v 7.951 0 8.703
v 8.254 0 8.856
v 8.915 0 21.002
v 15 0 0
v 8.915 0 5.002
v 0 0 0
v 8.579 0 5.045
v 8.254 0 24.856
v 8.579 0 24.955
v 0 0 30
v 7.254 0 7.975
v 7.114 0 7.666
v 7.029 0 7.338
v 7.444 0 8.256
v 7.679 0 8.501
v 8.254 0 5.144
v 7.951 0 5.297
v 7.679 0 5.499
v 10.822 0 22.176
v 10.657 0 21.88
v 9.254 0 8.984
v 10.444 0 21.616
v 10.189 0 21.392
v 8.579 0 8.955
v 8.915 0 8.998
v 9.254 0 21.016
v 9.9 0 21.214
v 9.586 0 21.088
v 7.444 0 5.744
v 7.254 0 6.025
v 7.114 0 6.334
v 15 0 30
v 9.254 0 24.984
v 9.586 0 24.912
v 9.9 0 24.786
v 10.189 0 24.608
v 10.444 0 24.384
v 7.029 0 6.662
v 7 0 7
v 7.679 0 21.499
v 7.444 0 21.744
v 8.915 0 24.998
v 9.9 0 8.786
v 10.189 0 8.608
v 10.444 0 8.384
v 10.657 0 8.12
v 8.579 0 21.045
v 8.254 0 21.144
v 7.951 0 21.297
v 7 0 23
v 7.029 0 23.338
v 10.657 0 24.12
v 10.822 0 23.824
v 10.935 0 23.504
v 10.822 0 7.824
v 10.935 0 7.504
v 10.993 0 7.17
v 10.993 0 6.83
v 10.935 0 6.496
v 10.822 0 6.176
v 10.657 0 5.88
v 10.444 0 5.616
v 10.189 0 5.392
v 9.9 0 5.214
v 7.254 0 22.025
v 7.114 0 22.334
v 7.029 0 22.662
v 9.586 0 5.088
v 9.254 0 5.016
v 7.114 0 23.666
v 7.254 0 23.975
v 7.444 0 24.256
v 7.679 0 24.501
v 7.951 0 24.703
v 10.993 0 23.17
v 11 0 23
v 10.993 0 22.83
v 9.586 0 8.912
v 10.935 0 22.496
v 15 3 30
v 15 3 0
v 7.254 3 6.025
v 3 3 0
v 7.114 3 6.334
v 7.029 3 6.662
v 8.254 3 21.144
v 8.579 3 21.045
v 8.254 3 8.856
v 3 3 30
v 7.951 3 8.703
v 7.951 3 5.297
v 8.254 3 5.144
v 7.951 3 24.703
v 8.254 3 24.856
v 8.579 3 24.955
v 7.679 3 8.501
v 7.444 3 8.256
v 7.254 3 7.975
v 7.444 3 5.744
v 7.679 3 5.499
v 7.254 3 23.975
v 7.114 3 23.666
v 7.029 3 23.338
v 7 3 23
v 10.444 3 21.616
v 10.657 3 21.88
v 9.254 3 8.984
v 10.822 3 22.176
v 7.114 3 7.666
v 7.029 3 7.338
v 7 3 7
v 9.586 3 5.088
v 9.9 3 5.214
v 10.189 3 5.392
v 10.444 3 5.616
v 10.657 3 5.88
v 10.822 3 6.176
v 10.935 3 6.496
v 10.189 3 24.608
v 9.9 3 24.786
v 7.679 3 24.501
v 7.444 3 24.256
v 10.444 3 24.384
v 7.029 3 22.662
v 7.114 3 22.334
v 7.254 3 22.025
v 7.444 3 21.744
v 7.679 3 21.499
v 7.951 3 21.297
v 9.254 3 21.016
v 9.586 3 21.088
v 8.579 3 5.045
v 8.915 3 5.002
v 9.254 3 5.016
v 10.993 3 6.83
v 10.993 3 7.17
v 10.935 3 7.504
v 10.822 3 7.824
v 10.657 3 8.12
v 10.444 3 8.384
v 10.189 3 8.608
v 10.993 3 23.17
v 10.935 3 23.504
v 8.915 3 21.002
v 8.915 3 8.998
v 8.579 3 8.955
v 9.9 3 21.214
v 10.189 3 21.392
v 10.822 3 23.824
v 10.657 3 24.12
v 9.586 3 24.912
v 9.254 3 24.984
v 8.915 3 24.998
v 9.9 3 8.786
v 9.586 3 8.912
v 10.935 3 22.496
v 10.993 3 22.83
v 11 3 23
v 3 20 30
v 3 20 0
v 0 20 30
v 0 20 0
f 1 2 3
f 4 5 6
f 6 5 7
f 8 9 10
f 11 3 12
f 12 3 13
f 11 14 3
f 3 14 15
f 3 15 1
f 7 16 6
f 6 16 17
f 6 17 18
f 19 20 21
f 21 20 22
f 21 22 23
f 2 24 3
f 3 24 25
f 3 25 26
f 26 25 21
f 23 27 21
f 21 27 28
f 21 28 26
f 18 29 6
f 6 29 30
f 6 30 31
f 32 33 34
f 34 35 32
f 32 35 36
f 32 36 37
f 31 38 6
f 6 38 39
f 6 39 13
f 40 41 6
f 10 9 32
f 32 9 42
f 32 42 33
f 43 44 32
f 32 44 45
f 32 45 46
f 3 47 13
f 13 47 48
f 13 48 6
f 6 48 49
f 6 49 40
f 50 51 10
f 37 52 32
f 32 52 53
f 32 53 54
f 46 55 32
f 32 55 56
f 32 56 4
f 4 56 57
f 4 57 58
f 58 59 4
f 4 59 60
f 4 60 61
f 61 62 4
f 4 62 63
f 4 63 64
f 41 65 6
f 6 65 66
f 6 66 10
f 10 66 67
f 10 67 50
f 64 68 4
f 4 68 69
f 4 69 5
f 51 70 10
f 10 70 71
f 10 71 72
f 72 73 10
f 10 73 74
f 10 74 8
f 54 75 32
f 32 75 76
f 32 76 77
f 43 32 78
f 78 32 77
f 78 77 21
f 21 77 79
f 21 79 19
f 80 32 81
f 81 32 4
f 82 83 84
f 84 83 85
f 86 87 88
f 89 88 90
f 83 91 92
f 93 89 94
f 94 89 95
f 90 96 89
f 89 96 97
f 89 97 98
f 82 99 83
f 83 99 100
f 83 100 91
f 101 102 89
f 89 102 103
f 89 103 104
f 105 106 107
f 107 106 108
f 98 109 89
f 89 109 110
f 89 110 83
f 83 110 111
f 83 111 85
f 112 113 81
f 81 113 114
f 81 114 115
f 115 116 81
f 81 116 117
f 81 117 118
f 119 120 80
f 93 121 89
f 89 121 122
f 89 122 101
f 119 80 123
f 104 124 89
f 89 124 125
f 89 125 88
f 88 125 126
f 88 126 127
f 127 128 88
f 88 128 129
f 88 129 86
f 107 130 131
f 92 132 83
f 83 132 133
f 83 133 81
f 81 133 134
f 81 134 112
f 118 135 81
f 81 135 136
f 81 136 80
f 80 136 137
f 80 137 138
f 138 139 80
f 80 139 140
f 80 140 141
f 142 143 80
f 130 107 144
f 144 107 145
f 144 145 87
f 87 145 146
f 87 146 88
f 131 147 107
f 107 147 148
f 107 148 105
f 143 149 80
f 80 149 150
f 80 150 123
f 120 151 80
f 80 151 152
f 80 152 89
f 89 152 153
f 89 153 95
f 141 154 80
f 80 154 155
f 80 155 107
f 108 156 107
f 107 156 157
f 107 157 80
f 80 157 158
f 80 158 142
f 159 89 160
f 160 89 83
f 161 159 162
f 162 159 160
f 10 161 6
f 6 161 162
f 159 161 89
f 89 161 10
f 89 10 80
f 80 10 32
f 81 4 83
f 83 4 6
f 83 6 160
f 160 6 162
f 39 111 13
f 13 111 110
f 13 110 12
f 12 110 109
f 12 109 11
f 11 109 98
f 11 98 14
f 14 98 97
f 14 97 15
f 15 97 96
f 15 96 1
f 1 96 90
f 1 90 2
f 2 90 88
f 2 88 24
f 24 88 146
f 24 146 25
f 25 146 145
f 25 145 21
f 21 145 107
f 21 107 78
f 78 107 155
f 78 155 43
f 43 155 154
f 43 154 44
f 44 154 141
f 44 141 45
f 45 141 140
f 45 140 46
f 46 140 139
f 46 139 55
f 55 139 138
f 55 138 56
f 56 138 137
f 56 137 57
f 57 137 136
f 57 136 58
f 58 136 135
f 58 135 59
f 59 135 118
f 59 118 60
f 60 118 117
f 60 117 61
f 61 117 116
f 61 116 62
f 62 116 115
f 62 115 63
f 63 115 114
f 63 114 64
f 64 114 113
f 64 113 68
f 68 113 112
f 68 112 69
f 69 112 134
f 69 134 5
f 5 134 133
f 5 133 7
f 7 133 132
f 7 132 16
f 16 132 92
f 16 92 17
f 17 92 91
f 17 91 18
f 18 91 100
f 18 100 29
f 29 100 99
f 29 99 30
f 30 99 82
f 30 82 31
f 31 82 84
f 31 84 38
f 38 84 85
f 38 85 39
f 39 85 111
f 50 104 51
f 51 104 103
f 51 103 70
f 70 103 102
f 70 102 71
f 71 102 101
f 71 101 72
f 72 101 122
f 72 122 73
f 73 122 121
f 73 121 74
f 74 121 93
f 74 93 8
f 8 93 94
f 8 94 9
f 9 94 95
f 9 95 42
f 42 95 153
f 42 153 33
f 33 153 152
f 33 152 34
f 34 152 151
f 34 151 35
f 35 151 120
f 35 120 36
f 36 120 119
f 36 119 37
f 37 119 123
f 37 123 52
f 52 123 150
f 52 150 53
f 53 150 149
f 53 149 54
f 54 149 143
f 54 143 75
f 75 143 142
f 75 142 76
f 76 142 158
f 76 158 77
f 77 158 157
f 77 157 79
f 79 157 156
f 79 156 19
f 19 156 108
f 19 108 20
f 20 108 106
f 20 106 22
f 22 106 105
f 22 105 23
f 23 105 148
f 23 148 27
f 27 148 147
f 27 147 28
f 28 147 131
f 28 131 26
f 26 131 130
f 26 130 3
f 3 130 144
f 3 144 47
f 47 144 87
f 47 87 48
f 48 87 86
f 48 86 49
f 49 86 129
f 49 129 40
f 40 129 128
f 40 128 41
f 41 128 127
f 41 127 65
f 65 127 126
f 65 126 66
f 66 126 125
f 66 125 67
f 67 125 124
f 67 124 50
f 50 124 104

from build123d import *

# Parameters (mm, degrees)
BOSS_EXTRUDE1_DEPTH = 30
SKETCH2_R           = 2
CUT_EXTRUDE1_DEPTH  = 3


with BuildPart() as part:
    # Sketch1 → Boss-Extrude1 (new body)
    with BuildSketch(Plane.XY):
        Polygon((0, 0), (0, 20), (3, 20), (3, 3), (15, 3), (15, 0), align=None)
    extrude(amount=BOSS_EXTRUDE1_DEPTH)

    # Sketch2 → Cut-Extrude1 (cut)
    with BuildSketch(Plane(origin=(0, 3, 0), x_dir=(1, 0, 0), z_dir=(0, 1, 0))):
        with Locations(Location((9, -7, 0), (0, 0, 180))):
            Circle(SKETCH2_R)
        with Locations((9, -23)):
            Circle(SKETCH2_R)
    extrude(amount=-CUT_EXTRUDE1_DEPTH, mode=Mode.SUBTRACT)


solid = part.part
